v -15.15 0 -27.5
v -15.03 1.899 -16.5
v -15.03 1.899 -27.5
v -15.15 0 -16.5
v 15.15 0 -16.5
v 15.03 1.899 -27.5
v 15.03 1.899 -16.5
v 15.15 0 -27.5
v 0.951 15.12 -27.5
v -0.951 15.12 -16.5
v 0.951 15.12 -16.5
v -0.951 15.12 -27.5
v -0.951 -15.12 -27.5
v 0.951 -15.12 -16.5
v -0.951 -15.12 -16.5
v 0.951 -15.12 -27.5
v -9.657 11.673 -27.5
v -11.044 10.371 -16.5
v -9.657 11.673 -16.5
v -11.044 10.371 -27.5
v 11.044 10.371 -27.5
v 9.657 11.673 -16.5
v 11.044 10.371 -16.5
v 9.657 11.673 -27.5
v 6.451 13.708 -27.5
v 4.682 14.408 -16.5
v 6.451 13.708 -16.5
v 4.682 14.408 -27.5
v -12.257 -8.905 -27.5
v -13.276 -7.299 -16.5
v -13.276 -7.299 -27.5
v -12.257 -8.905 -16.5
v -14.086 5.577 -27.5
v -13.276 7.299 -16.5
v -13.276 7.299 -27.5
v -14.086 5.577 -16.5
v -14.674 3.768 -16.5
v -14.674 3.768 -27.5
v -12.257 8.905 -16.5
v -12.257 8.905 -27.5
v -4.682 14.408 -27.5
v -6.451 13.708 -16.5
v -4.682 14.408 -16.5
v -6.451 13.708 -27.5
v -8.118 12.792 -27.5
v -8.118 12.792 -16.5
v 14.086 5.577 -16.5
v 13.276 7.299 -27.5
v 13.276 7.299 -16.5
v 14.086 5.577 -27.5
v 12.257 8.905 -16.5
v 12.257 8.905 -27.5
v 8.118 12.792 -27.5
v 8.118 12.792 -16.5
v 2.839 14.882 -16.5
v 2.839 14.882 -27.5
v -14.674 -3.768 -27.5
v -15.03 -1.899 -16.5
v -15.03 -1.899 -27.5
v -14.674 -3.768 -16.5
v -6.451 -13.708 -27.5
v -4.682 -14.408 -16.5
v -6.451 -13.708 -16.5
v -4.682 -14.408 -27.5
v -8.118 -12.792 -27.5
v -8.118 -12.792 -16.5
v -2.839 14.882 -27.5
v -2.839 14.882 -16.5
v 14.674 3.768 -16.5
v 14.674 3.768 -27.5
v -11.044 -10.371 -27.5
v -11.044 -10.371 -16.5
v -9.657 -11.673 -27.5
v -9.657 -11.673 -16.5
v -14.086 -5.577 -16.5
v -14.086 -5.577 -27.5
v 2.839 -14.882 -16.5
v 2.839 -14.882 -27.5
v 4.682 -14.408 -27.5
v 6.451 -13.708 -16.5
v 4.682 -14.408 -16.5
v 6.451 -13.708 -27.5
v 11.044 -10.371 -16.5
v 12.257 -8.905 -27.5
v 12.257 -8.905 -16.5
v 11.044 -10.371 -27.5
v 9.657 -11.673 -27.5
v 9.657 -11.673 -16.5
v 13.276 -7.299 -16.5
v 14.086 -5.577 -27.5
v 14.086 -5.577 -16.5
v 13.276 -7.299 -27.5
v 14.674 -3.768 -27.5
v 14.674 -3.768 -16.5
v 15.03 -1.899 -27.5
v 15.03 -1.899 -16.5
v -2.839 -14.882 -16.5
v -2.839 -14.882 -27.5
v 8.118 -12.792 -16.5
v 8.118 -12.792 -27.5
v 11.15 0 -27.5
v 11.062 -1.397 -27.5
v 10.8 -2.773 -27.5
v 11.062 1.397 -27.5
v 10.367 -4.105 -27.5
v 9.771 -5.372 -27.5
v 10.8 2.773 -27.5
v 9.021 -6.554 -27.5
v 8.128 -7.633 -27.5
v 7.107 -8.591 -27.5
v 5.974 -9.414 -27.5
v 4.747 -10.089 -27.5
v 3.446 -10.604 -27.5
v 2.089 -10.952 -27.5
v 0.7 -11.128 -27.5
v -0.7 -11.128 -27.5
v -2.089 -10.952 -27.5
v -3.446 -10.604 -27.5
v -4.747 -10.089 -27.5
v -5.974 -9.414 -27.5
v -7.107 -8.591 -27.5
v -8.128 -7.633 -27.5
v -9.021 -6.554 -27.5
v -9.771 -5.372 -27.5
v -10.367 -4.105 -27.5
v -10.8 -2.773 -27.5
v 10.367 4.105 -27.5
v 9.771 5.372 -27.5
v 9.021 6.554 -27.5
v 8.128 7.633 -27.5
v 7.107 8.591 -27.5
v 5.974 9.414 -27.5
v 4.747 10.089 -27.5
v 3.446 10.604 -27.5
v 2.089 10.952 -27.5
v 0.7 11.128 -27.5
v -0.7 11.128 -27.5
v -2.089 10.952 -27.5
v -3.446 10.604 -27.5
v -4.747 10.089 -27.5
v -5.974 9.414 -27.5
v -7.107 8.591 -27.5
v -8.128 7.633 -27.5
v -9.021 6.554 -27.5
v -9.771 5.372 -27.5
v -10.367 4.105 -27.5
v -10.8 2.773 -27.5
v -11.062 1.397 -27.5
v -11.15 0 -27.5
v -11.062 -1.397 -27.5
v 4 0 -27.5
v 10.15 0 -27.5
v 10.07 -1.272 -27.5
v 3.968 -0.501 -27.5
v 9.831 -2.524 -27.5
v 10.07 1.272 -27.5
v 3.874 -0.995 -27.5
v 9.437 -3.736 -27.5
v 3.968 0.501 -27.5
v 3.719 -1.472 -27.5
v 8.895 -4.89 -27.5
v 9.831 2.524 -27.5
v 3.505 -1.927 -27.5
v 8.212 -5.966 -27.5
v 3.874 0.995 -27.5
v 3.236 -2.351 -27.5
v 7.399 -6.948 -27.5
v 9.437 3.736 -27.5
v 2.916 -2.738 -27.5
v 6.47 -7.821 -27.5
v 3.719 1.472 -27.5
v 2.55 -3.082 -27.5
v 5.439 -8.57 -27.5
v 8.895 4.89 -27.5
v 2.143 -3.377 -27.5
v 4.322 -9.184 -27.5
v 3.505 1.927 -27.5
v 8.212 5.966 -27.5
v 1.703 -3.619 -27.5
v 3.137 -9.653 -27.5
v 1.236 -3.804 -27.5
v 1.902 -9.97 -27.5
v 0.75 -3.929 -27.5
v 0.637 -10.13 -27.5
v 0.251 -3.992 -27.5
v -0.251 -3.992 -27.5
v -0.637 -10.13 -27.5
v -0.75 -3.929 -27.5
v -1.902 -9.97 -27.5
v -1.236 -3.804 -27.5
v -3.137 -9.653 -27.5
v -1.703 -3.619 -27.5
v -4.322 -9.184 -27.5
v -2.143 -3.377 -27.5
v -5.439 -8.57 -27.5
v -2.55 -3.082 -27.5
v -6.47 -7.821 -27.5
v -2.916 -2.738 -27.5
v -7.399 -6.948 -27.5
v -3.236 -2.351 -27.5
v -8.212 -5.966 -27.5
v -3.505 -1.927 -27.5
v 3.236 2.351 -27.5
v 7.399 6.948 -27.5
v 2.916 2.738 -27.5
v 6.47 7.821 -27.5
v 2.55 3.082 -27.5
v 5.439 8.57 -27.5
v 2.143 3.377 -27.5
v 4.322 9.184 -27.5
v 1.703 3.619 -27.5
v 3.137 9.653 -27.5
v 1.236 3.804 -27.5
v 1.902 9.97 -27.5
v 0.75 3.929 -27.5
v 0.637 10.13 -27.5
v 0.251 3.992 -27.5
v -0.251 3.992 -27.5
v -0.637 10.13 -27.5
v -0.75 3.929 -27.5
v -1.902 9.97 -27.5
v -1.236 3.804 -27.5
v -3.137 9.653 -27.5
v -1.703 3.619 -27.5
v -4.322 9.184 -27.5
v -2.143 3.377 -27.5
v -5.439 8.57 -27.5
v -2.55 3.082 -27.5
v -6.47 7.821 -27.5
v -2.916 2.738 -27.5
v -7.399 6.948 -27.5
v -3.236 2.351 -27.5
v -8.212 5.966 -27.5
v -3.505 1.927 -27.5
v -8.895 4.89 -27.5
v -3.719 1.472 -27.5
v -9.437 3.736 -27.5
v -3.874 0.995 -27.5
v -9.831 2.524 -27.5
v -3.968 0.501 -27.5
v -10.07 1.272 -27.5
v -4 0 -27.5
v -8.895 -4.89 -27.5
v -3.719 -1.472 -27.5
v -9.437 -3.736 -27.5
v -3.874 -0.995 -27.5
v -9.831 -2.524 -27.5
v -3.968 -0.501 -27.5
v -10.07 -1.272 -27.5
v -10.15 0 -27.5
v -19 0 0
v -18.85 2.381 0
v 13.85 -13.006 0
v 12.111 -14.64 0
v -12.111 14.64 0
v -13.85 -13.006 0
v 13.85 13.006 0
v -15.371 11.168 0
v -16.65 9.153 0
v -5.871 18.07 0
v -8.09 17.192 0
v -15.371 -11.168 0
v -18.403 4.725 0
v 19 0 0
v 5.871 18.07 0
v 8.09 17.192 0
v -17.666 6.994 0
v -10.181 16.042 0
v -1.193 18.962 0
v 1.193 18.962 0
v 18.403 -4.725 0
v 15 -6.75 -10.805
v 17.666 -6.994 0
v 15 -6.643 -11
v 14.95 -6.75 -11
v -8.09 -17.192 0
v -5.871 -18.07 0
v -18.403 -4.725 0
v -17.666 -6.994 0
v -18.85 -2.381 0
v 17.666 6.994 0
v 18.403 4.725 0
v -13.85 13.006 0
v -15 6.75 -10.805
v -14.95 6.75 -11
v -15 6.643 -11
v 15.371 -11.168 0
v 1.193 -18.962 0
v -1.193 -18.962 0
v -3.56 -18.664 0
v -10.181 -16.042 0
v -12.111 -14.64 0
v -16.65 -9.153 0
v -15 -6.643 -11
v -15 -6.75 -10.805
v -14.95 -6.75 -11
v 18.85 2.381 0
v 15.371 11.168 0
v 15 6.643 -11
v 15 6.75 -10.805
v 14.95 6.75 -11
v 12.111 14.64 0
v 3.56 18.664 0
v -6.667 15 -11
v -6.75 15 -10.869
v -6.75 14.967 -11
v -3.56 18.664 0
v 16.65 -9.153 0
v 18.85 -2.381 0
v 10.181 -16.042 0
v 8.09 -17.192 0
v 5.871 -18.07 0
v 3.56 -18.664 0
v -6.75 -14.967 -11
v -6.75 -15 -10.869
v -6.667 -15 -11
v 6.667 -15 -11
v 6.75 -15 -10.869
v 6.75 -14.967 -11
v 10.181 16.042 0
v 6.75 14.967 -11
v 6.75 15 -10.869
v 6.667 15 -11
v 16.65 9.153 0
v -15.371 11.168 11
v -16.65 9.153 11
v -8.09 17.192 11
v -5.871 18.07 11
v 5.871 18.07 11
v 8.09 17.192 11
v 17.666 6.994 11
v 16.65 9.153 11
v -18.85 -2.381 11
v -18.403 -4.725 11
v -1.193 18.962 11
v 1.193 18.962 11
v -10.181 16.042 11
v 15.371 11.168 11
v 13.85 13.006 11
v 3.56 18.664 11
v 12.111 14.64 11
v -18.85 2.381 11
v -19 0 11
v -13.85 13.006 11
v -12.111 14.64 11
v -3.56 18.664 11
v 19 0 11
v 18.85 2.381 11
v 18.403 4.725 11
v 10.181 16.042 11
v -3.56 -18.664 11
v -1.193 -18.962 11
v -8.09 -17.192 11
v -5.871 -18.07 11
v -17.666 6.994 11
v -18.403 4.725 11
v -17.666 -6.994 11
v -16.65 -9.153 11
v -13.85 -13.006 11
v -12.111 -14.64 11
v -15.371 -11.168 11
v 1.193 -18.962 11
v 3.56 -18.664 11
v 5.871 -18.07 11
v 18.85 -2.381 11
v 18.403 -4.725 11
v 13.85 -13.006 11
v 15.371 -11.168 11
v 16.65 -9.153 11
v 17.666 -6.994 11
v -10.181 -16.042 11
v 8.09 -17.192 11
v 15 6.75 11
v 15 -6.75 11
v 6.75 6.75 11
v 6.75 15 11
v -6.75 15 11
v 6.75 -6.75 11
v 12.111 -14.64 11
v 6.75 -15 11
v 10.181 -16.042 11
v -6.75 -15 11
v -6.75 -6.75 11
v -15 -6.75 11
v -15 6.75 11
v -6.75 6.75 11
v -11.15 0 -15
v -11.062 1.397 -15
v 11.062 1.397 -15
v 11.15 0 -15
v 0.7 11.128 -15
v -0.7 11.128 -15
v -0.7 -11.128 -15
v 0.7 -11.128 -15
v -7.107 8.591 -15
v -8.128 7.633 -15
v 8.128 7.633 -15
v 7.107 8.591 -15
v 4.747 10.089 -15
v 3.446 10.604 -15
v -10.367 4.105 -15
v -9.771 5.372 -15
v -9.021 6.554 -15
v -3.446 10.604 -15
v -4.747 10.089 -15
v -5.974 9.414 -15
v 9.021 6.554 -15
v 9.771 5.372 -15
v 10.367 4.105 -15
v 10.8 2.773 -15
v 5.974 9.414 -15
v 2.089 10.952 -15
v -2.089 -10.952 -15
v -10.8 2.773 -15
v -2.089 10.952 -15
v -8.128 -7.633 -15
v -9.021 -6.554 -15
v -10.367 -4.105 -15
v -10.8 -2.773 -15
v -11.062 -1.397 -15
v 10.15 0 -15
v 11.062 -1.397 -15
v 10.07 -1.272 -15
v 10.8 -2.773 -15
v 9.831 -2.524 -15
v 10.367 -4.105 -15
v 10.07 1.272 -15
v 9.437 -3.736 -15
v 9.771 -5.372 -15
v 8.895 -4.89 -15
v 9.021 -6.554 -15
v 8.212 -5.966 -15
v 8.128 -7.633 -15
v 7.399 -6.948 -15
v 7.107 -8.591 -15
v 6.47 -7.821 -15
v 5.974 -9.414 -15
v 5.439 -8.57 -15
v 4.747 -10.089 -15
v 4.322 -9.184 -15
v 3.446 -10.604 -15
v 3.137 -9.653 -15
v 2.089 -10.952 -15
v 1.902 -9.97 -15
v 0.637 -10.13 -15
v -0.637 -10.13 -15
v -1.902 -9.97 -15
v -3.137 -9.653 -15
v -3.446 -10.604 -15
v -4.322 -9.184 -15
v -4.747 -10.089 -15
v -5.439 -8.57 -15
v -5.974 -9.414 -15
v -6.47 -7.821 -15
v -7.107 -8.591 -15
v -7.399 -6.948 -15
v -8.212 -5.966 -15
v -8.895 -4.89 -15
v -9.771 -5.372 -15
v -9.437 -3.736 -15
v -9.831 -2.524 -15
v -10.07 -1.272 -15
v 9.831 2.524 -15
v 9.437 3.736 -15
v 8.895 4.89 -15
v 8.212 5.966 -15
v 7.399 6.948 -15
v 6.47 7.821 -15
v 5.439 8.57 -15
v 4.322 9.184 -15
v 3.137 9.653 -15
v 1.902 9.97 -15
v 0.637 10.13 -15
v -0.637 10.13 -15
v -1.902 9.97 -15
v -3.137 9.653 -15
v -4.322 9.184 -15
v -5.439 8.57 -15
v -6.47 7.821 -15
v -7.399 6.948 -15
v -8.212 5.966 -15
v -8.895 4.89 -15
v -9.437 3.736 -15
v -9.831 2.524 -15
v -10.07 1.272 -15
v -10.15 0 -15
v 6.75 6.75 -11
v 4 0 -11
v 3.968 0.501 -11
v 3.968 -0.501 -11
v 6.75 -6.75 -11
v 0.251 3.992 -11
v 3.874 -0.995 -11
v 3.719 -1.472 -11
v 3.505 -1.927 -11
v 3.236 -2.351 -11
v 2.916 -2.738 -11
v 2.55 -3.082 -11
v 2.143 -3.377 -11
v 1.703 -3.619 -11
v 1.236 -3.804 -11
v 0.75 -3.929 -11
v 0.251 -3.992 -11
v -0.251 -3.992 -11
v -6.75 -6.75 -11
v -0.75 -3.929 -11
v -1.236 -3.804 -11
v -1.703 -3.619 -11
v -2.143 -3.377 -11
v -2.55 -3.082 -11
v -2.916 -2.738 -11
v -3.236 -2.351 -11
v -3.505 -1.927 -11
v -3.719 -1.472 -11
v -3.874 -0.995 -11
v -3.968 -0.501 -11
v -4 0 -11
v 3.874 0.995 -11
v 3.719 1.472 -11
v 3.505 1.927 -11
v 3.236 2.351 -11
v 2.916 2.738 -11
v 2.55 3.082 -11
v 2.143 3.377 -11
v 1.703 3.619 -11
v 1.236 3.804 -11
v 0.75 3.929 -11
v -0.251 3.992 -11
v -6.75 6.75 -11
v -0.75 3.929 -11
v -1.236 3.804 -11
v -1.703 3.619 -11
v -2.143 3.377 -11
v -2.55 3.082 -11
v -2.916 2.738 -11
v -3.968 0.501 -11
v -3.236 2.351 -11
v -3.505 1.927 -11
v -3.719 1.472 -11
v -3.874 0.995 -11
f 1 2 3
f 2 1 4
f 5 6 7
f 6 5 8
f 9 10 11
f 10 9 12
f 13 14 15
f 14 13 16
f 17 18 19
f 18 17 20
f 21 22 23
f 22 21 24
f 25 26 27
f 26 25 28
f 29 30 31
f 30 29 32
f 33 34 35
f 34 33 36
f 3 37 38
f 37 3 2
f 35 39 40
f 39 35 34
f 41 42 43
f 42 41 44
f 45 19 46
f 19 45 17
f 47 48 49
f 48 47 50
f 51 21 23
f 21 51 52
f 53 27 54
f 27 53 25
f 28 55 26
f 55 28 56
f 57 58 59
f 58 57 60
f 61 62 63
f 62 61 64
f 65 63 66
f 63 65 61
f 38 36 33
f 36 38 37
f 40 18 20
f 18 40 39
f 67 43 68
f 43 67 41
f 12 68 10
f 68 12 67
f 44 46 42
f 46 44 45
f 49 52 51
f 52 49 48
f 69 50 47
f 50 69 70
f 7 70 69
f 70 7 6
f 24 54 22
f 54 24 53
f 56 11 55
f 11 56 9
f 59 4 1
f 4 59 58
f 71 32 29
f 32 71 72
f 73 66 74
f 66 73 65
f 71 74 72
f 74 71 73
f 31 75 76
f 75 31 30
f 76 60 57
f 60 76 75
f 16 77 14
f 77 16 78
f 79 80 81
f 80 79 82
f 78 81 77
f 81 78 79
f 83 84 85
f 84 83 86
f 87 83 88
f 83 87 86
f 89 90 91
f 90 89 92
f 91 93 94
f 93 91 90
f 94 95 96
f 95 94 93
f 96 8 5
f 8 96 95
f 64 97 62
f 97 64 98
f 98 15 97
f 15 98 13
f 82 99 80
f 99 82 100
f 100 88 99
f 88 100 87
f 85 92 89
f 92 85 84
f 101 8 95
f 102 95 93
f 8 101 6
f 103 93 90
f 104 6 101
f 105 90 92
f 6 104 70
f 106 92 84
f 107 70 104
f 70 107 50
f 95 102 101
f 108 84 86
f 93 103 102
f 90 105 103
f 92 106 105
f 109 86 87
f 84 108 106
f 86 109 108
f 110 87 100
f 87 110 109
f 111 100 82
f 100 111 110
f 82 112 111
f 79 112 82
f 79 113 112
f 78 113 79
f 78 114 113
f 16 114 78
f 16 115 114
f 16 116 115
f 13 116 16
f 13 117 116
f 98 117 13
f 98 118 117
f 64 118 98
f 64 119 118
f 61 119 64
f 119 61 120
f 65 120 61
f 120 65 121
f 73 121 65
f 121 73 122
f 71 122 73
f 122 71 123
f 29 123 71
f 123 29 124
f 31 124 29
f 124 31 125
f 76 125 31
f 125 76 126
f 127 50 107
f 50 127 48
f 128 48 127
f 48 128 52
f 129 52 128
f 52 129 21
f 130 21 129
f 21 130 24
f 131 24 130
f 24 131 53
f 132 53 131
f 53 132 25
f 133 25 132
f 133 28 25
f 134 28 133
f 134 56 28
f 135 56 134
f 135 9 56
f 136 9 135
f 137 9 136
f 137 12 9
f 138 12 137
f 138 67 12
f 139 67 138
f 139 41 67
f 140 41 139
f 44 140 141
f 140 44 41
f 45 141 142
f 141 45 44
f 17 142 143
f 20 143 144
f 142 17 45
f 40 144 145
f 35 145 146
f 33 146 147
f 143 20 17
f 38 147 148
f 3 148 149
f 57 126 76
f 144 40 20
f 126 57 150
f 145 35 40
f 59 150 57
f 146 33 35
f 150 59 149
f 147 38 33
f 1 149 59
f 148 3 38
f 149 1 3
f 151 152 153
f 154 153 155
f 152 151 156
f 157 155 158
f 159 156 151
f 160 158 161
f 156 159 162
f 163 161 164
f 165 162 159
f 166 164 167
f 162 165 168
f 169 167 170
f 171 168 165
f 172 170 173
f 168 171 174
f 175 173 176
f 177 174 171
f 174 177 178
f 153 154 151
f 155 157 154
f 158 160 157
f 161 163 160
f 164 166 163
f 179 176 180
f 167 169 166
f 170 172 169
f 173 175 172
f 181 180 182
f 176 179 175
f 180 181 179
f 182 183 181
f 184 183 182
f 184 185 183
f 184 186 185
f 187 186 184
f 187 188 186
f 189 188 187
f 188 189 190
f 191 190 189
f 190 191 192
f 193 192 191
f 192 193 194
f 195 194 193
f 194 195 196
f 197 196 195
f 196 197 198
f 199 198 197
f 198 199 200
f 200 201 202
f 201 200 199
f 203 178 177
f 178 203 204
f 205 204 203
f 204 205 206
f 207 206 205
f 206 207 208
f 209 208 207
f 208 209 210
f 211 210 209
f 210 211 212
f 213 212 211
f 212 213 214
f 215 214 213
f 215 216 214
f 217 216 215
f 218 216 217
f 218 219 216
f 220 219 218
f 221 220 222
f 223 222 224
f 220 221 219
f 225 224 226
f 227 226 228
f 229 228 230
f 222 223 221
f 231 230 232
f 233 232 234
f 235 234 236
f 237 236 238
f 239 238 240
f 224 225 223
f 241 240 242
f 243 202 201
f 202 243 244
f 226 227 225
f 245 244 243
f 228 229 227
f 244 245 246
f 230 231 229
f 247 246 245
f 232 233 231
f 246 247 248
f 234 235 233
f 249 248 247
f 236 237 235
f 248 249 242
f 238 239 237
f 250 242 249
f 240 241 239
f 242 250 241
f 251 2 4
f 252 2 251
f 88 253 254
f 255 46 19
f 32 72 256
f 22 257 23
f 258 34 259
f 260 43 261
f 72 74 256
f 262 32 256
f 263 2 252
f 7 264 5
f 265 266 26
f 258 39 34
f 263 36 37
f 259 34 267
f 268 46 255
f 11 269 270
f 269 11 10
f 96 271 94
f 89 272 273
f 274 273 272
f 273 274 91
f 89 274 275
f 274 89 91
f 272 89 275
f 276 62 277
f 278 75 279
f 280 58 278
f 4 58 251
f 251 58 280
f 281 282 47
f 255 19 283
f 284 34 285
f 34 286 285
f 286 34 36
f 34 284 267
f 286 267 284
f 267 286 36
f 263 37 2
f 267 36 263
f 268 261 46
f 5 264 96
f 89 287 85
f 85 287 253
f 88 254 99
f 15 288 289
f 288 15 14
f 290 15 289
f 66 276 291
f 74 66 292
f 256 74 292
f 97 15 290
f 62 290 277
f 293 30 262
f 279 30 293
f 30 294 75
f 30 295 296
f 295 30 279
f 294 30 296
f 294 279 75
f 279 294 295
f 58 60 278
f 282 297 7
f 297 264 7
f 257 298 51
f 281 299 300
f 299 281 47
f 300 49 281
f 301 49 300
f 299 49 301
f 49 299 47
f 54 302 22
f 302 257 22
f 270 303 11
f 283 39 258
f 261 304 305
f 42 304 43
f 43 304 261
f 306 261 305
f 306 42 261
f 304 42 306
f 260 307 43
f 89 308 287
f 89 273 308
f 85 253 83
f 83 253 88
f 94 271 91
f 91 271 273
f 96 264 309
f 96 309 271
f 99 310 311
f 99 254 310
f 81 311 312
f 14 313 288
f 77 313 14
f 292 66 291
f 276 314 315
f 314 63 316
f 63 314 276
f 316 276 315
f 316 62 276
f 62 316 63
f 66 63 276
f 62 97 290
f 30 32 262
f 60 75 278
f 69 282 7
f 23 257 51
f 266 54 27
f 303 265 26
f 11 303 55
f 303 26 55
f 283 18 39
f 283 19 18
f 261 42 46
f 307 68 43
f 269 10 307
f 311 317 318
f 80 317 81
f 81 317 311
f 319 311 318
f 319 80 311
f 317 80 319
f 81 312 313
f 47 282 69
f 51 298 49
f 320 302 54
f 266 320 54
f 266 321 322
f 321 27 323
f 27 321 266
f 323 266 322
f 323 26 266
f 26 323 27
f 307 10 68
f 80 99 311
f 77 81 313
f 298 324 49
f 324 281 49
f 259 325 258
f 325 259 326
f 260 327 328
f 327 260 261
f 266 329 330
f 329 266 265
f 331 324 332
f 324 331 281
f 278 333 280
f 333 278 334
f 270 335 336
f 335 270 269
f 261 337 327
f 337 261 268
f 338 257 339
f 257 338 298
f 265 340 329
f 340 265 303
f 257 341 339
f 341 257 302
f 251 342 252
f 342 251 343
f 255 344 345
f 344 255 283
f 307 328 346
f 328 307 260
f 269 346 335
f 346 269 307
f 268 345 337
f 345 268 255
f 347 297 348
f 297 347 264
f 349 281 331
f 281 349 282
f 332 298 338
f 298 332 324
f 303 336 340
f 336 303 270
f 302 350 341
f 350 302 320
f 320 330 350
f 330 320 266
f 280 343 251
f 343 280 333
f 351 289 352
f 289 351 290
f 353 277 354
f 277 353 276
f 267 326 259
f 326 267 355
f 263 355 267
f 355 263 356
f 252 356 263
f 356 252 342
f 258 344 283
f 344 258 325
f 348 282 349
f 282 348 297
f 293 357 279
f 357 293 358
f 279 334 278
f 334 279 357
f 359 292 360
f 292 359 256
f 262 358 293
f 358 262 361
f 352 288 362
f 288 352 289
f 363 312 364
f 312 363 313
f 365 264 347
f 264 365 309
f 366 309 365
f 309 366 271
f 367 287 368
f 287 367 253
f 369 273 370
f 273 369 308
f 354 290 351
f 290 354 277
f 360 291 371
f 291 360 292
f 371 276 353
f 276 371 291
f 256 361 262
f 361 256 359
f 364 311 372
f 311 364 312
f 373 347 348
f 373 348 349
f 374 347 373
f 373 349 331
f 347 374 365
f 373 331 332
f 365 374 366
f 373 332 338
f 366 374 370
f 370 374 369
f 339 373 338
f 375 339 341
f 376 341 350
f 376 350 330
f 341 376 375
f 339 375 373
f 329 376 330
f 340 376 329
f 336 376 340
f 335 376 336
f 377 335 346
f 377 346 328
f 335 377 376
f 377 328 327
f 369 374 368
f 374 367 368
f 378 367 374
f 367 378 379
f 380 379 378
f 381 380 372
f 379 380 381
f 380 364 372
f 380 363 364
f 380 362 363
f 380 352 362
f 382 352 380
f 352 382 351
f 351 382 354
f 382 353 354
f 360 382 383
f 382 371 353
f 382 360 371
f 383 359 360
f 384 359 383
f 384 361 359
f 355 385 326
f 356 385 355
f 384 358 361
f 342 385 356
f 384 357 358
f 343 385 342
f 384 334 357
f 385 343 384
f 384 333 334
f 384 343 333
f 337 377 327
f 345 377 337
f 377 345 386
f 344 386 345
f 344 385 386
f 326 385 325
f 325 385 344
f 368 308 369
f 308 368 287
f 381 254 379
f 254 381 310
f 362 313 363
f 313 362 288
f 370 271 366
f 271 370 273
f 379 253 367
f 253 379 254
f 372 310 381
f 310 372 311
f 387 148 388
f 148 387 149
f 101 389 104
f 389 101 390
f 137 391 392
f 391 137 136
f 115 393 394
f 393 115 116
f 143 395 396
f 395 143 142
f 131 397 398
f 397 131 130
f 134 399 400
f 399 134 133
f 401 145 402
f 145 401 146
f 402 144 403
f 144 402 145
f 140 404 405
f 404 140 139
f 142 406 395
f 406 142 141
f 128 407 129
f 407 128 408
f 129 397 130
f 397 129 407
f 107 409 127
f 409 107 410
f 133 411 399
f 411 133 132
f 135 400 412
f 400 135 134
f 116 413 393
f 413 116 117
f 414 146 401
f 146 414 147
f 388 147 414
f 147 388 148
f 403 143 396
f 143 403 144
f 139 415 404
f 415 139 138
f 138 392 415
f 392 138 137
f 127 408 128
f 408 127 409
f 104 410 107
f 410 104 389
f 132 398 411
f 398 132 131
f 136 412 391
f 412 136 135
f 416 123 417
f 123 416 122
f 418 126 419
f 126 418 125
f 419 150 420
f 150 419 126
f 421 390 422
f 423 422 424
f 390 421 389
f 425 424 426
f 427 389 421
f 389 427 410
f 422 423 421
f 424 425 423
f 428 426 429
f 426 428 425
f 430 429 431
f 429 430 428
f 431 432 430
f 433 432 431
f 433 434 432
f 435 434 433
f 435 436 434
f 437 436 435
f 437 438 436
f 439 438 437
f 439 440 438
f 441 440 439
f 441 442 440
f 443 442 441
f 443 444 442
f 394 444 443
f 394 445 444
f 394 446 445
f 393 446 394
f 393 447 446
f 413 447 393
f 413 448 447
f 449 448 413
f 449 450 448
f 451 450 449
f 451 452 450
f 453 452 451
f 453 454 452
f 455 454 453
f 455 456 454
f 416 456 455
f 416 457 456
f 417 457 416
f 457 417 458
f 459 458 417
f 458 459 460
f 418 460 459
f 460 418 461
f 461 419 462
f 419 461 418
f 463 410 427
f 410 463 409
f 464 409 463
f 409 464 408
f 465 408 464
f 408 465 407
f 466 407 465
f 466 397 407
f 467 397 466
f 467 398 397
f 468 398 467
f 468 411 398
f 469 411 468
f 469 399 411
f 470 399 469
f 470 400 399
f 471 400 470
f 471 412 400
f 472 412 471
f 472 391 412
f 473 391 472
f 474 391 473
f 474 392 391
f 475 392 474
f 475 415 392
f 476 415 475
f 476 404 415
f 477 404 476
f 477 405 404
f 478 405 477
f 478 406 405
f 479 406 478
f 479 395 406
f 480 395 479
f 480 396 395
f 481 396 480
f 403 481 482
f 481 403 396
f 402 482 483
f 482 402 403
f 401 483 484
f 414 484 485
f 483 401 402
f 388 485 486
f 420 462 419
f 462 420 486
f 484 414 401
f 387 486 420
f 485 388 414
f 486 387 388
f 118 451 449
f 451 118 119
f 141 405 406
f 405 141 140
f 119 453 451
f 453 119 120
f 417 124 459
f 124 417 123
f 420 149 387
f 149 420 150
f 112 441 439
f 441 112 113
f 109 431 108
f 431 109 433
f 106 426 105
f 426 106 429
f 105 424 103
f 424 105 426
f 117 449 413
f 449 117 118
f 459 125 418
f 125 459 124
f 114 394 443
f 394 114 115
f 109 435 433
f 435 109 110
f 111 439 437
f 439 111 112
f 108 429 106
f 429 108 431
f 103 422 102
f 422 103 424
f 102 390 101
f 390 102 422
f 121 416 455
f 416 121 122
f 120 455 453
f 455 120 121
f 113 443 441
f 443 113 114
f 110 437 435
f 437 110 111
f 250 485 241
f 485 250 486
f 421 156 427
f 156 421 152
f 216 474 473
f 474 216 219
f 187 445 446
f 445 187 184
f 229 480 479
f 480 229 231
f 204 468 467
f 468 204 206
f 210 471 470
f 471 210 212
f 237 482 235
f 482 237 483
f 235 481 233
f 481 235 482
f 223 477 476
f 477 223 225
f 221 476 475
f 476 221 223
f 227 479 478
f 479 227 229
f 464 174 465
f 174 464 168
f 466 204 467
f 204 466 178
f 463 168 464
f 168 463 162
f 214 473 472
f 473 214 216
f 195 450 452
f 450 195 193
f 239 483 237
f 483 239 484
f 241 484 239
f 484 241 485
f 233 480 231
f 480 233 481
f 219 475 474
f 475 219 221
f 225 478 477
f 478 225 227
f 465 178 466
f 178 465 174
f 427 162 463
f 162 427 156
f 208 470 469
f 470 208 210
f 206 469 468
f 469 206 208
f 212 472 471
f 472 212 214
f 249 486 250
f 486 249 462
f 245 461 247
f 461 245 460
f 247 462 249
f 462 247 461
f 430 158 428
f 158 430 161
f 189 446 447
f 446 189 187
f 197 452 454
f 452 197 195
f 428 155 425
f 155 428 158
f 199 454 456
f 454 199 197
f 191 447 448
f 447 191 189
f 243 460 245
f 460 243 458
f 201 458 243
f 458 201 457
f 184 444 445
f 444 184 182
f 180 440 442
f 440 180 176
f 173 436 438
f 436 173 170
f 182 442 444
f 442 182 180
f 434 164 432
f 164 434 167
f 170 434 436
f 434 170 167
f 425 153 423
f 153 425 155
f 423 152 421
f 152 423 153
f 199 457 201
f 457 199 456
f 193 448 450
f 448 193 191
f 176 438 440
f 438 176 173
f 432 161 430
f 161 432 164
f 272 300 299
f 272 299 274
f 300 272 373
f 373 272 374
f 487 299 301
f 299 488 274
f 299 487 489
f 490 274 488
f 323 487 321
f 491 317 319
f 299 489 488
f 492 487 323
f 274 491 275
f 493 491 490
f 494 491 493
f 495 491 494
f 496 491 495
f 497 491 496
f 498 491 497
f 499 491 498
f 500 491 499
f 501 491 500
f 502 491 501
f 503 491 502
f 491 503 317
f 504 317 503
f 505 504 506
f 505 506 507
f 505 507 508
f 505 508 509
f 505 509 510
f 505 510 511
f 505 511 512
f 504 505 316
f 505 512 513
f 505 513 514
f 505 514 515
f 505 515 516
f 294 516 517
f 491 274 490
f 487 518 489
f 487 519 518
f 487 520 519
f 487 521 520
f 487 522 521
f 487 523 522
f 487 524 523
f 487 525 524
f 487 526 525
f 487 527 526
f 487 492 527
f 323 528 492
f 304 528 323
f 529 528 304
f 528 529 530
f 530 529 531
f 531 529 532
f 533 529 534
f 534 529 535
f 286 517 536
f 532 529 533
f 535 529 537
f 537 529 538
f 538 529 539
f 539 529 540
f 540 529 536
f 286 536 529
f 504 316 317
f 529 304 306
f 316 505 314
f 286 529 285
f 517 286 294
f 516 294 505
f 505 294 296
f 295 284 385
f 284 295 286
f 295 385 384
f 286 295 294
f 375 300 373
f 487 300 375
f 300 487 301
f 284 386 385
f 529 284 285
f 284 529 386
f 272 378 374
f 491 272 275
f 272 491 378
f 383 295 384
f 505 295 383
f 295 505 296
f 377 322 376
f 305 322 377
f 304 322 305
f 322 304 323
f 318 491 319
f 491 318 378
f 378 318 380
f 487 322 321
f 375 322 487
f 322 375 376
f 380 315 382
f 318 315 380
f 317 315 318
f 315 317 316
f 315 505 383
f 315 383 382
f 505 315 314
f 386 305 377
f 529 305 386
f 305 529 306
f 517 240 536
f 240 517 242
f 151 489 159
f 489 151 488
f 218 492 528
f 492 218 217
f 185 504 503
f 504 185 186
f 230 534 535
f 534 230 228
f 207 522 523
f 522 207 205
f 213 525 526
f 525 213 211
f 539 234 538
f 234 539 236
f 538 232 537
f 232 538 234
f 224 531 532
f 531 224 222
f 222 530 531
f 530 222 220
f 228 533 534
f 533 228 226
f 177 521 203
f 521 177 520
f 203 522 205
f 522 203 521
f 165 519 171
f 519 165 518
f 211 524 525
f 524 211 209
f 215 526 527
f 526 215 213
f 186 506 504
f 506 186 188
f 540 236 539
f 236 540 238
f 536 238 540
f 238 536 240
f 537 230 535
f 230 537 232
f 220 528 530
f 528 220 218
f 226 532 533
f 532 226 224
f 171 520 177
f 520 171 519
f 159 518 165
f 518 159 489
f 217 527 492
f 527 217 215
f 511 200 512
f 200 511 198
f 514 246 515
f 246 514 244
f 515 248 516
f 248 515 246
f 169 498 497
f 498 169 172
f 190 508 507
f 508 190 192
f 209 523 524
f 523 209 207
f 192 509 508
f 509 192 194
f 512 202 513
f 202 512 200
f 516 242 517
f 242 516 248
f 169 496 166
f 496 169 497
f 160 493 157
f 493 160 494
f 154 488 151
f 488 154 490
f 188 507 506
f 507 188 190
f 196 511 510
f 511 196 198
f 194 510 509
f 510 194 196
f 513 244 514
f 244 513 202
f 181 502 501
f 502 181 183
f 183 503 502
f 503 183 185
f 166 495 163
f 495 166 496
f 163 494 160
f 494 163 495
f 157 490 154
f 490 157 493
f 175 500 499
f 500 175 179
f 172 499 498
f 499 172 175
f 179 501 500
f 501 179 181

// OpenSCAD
Wall=4; // mm
SensorW=30; // mm
SensorH=22; //mm
SensorL=13.5;//mm

PipeID=20.3;//mm
PipeOD=22.3;//mm

$fn=50;


rotate([0,180,0])
difference() {
union() {
  translate([0,0,SensorH*3/4])
    cylinder(d=PipeOD+Wall*2,h=SensorH/4);
  translate([0,0,SensorH*4/4])
    cylinder(d=PipeOD+Wall*2,h=SensorH/4);
  cylinder(d1=SensorW+Wall*2,d2=PipeOD+Wall*2,h=SensorH*3/4);
  translate([0,0,-SensorH/2])
    cylinder(d=SensorW+Wall*2,h=SensorH/2);
}
// Sensor
cube([SensorW,SensorL,SensorH],center=true);
rotate([0,0,90])
  cube([SensorW,SensorL,SensorH],center=true);
// Pipe
translate([0,0,SensorH+Wall])
  difference() {
  cylinder(d=PipeOD,h=SensorH,center=true);
  cylinder(d=PipeID,h=SensorH,center=true);
  }
//Wire hole  
translate([0,0,SensorH])  
  cylinder(r=Wall,h=SensorH*2,center=true);
}
